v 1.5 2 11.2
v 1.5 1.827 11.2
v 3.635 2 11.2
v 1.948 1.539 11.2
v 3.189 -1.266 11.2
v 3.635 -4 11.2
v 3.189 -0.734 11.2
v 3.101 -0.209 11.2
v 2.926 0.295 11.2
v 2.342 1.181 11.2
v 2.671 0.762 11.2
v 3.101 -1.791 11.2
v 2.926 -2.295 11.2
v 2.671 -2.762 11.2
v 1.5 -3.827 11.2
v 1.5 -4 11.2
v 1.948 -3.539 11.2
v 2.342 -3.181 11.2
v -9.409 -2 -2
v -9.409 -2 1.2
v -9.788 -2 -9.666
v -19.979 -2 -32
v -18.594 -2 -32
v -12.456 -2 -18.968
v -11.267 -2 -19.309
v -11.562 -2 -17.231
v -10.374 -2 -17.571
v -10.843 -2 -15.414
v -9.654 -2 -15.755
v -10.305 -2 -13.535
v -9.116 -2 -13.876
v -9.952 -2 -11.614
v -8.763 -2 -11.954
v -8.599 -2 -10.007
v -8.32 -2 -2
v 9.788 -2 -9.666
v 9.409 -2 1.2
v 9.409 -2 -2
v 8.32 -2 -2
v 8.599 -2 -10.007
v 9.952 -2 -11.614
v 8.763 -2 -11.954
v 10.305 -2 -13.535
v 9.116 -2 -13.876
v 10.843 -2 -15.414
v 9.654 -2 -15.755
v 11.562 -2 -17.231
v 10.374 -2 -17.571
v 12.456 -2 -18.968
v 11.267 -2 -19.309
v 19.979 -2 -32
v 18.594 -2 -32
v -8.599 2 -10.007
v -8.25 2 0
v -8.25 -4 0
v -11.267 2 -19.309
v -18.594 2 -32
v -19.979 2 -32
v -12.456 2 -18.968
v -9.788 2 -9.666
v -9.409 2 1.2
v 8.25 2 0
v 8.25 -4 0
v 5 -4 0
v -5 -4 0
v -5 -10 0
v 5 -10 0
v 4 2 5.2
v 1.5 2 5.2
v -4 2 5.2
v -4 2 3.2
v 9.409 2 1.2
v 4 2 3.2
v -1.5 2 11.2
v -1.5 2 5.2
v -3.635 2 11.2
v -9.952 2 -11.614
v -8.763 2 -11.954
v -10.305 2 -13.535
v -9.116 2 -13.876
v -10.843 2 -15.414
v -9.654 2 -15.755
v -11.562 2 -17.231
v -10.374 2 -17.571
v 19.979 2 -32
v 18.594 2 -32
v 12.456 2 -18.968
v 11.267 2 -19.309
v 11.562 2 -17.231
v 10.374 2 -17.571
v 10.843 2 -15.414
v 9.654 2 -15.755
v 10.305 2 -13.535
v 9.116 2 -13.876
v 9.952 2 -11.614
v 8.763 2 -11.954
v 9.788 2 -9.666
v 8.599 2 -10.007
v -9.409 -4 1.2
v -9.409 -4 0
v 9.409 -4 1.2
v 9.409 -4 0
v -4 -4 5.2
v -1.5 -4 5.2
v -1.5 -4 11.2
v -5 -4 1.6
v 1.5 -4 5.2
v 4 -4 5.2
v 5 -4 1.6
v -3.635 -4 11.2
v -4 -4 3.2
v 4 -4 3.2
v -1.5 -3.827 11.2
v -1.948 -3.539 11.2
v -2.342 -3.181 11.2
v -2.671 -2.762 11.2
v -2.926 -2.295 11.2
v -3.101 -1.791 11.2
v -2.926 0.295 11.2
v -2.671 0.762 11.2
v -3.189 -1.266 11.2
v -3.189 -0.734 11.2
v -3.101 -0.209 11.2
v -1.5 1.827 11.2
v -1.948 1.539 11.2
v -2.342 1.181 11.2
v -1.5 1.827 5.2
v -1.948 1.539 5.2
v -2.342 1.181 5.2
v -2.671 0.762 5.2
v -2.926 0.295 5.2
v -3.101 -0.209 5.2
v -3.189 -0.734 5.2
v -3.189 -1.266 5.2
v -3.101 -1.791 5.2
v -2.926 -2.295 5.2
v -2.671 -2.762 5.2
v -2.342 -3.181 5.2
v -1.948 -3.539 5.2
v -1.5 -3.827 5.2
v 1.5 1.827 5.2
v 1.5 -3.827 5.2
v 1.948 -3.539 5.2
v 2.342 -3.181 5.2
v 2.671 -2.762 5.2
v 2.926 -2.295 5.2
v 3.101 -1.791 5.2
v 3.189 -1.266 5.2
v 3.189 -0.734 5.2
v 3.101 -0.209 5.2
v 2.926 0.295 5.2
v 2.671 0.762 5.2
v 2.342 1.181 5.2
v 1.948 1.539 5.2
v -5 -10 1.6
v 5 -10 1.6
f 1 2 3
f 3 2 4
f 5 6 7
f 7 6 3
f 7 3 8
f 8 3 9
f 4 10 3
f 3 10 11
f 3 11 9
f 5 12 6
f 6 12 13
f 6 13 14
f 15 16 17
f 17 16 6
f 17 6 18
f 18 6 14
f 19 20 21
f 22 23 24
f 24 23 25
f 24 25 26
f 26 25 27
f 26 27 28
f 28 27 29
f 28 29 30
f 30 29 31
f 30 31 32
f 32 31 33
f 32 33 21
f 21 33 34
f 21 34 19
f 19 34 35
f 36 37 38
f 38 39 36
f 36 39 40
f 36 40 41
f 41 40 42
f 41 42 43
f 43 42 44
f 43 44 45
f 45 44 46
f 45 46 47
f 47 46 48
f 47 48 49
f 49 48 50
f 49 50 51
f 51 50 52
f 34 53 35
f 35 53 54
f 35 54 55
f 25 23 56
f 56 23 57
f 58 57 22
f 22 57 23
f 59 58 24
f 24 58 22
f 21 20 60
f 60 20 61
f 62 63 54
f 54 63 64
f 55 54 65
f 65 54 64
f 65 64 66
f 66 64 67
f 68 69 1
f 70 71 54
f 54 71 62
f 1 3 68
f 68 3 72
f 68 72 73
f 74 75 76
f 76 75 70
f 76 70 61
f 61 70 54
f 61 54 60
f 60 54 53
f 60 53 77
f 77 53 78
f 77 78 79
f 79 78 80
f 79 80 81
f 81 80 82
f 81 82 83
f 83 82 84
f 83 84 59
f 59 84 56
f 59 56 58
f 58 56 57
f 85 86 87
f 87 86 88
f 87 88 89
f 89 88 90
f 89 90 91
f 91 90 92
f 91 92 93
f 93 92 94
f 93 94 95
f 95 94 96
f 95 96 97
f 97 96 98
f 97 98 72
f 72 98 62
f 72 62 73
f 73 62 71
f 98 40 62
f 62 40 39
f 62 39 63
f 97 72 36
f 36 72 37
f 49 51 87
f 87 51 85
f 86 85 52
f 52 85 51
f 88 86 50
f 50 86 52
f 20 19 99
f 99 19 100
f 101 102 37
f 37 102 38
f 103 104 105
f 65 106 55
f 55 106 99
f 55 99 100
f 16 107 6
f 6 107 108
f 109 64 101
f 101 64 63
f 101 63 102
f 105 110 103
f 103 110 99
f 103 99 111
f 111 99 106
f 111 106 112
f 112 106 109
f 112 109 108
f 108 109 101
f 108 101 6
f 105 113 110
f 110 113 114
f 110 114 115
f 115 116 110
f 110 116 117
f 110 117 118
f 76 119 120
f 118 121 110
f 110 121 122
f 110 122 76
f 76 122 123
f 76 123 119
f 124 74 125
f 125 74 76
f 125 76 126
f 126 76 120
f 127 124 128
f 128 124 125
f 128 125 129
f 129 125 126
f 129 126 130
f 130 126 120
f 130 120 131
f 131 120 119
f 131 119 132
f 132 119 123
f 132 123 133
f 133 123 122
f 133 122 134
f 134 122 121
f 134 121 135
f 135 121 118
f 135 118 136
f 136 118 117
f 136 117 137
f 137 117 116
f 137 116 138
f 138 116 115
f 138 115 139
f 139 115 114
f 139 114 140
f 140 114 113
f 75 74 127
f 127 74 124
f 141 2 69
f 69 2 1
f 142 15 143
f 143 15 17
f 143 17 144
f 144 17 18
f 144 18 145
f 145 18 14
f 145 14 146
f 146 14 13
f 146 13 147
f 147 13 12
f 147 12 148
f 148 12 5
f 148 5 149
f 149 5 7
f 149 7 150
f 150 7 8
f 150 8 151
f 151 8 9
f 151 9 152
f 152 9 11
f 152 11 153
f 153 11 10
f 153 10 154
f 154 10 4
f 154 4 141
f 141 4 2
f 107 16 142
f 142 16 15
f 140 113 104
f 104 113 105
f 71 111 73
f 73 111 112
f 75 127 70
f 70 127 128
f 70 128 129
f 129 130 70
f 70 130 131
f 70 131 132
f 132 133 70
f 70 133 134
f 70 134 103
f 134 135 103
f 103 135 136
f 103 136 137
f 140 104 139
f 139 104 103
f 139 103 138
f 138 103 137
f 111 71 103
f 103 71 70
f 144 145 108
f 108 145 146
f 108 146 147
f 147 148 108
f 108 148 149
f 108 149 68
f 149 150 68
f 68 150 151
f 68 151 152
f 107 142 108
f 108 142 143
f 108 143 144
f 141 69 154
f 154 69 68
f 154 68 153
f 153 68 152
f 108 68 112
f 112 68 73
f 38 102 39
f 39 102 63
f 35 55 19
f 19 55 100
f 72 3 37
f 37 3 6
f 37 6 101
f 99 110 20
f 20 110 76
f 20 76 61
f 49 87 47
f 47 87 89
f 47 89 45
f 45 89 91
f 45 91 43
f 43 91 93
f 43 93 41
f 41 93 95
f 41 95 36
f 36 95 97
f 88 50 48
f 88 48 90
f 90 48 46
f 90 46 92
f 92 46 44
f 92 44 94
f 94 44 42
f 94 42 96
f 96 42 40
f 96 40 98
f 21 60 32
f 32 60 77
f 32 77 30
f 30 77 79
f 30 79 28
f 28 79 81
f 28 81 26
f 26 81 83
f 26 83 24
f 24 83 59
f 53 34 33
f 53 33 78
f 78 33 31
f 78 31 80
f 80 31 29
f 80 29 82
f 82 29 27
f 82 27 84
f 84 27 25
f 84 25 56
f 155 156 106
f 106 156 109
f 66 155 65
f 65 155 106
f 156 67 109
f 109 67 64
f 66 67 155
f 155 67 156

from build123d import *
from OCP.BRepFilletAPI import BRepFilletAPI_MakeChamfer

# Parameters (mm, degrees)
BOSS_EXTRUDE1_DEPTH             = 2
BOSS_EXTRUDE2_REACH             = 40.8
SKETCH2_W                       = 18.81765306
SKETCH2_H                       = 6
BOSS_EXTRUDE2_DIRECTION_2_DEPTH = 10
CUT_EXTRUDE1_DEPTH              = 8
CUT_EXTRUDE2_DEPTH              = 38.936459462
CUT_EXTRUDE2_DEPTH_BACK         = 38.936459462
SKETCH4_W                       = 8
SKETCH4_H                       = 2
CHAMFER1_SIZE                   = 2
CHAMFER2_SIZE                   = 10
CHAMFER2_SIZE2                  = 5.773502692
FILLET1_R                       = 20
BOSS_EXTRUDE3_START             = -6
SKETCH5_W                       = 10
SKETCH5_H                       = 1.6
BOSS_EXTRUDE3_DEPTH             = 12


with BuildPart() as part:
    # Sketch1 → Boss-Extrude1 (new, symmetric)
    with BuildSketch(Plane(origin=(0, 0, 0), x_dir=(1, 0, 0), z_dir=(0, 1, 0))):
        Polygon((-8.25, 0), (0, 0), (0, -1.2), (-9.40882653, -1.2), (-9.962319737, 14.649971666), (-19.979363266, 32), (-18.59372262, 32), (-8.773492451, 14.990862405), align=None)
    boss_extrude1 = extrude(amount=BOSS_EXTRUDE1_DEPTH, both=True)

    # Mirror1: Boss-Extrude1 across plane
    add(boss_extrude1.mirror(Plane(origin=(0, 2, 0), x_dir=(0, 0, 1), z_dir=(-1, 0, 0))))

    # Boss-Extrude2: up to this face of the body (flat: up to its plane)
    boss_extrude2_end = Plane(part.part.faces().sort_by_distance((0, 0, 0))[0])
    # Sketch2 → Boss-Extrude2 (add, up to the picked face)
    with BuildSketch(Plane.XY.offset(1.2), mode=Mode.PRIVATE) as boss_extrude2_sk1:
        with Locations((0, -1)):
            Rectangle(SKETCH2_W, SKETCH2_H)
    boss_extrude2_tool1 = split(extrude(boss_extrude2_sk1.sketch, amount=-BOSS_EXTRUDE2_REACH, mode=Mode.PRIVATE), bisect_by=boss_extrude2_end, keep=Keep.BOTH, mode=Mode.PRIVATE)
    add(boss_extrude2_tool1.solids().sort_by(Axis((0, -1, 1.2), (0, 0, -1)))[0])

    # Sketch2 → Boss-Extrude2 direction 2 (add)
    with BuildSketch(Plane.XY.offset(1.2)):
        with Locations((0, -1)):
            Rectangle(SKETCH2_W, SKETCH2_H)
    extrude(amount=BOSS_EXTRUDE2_DIRECTION_2_DEPTH)

    # Sketch3 → Cut-Extrude1 (cut)
    with BuildSketch(Plane.XY.offset(11.2)):
        with BuildLine():
            Line((-1.5, 1.826658805), (-1.5, 2))
            Line((-1.5, 2), (1.5, 2))
            Line((1.5, 2), (1.5, 1.826658805))
            ThreePointArc((1.5, 1.826658805), (3.2, -1), (1.5, -3.826658805))
            Line((1.5, -3.826658805), (1.5, -4))
            Line((1.5, -4), (-1.5, -4))
            Line((-1.5, -4), (-1.5, -3.826658805))
            ThreePointArc((-1.5, -3.826658805), (-3.2, -1), (-1.5, 1.826658805))
        make_face()
    extrude(amount=-CUT_EXTRUDE1_DEPTH, mode=Mode.SUBTRACT)

    # Sketch4 → Cut-Extrude2 (cut, two sides: drawn at the far end of the back side and taken through both)
    with BuildSketch(Plane(origin=(0, 0, 0), x_dir=(1, 0, 0), z_dir=(0, 1, 0)).offset(-CUT_EXTRUDE2_DEPTH_BACK)):
        with Locations((0, -4.2)):
            Rectangle(SKETCH4_W, SKETCH4_H)
    extrude(amount=CUT_EXTRUDE2_DEPTH + CUT_EXTRUDE2_DEPTH_BACK, mode=Mode.SUBTRACT)

    # Chamfer1
    chamfer1_edges = [part.edges().sort_by_distance(p)[0] for p in [
        (8.829413265, -2, 0),
        (-8.829413265, -2, 0),
    ]]
    chamfer(chamfer1_edges, length=CHAMFER1_SIZE - 0.0001)  # a hair under: the kernel refuses the full size

    # Chamfer2: one chamfer whose edges measure the first distance from different faces: ONE call of the kernel's chamfer builder (chamfer() names one face for all edges)
    chamfer2_edges_1 = [part.edges().sort_by_distance(p)[0] for p in [
        (9.40882653, -1, 11.2),
    ]]
    chamfer2_side_1 = [part.faces().sort_by_distance(p)[0] for p in [
        (9.40882653, -1.126288177, 5.77807488),
    ]]
    chamfer2_edges_2 = [part.edges().sort_by_distance(p)[0] for p in [
        (-9.40882653, -1, 11.2),
    ]]
    chamfer2_side_2 = [part.faces().sort_by_distance(p)[0] for p in [
        (-9.40882653, -1.126288177, 5.77807488),
    ]]
    chamfer2 = BRepFilletAPI_MakeChamfer(part.part.solid().wrapped)
    for e in chamfer2_edges_1:
        chamfer2.Add(CHAMFER2_SIZE, CHAMFER2_SIZE2, e.wrapped, chamfer2_side_1[0].wrapped)  # the first distance lies on this face
    for e in chamfer2_edges_2:
        chamfer2.Add(CHAMFER2_SIZE, CHAMFER2_SIZE2, e.wrapped, chamfer2_side_2[0].wrapped)  # the first distance lies on this face
    add(Compound.cast(chamfer2.Shape()), mode=Mode.REPLACE)

    # Fillet1
    fillet1_edges = [part.edges().sort_by_distance(p)[0] for p in [
        (-9.962319737, 0, -14.649971666),
        (-8.773492451, 0, -14.990862405),
        (8.773492451, 0, -14.990862405),
        (9.962319737, 0, -14.649971666),
    ]]
    fillet(fillet1_edges, radius=FILLET1_R)

    # Sketch5 → Boss-Extrude3 (add)
    with BuildSketch(Plane.XZ.offset(4).offset(BOSS_EXTRUDE3_START)):
        with Locations((0, 0.8)):
            Rectangle(SKETCH5_W, SKETCH5_H)
    extrude(amount=BOSS_EXTRUDE3_DEPTH)


solid = part.part
